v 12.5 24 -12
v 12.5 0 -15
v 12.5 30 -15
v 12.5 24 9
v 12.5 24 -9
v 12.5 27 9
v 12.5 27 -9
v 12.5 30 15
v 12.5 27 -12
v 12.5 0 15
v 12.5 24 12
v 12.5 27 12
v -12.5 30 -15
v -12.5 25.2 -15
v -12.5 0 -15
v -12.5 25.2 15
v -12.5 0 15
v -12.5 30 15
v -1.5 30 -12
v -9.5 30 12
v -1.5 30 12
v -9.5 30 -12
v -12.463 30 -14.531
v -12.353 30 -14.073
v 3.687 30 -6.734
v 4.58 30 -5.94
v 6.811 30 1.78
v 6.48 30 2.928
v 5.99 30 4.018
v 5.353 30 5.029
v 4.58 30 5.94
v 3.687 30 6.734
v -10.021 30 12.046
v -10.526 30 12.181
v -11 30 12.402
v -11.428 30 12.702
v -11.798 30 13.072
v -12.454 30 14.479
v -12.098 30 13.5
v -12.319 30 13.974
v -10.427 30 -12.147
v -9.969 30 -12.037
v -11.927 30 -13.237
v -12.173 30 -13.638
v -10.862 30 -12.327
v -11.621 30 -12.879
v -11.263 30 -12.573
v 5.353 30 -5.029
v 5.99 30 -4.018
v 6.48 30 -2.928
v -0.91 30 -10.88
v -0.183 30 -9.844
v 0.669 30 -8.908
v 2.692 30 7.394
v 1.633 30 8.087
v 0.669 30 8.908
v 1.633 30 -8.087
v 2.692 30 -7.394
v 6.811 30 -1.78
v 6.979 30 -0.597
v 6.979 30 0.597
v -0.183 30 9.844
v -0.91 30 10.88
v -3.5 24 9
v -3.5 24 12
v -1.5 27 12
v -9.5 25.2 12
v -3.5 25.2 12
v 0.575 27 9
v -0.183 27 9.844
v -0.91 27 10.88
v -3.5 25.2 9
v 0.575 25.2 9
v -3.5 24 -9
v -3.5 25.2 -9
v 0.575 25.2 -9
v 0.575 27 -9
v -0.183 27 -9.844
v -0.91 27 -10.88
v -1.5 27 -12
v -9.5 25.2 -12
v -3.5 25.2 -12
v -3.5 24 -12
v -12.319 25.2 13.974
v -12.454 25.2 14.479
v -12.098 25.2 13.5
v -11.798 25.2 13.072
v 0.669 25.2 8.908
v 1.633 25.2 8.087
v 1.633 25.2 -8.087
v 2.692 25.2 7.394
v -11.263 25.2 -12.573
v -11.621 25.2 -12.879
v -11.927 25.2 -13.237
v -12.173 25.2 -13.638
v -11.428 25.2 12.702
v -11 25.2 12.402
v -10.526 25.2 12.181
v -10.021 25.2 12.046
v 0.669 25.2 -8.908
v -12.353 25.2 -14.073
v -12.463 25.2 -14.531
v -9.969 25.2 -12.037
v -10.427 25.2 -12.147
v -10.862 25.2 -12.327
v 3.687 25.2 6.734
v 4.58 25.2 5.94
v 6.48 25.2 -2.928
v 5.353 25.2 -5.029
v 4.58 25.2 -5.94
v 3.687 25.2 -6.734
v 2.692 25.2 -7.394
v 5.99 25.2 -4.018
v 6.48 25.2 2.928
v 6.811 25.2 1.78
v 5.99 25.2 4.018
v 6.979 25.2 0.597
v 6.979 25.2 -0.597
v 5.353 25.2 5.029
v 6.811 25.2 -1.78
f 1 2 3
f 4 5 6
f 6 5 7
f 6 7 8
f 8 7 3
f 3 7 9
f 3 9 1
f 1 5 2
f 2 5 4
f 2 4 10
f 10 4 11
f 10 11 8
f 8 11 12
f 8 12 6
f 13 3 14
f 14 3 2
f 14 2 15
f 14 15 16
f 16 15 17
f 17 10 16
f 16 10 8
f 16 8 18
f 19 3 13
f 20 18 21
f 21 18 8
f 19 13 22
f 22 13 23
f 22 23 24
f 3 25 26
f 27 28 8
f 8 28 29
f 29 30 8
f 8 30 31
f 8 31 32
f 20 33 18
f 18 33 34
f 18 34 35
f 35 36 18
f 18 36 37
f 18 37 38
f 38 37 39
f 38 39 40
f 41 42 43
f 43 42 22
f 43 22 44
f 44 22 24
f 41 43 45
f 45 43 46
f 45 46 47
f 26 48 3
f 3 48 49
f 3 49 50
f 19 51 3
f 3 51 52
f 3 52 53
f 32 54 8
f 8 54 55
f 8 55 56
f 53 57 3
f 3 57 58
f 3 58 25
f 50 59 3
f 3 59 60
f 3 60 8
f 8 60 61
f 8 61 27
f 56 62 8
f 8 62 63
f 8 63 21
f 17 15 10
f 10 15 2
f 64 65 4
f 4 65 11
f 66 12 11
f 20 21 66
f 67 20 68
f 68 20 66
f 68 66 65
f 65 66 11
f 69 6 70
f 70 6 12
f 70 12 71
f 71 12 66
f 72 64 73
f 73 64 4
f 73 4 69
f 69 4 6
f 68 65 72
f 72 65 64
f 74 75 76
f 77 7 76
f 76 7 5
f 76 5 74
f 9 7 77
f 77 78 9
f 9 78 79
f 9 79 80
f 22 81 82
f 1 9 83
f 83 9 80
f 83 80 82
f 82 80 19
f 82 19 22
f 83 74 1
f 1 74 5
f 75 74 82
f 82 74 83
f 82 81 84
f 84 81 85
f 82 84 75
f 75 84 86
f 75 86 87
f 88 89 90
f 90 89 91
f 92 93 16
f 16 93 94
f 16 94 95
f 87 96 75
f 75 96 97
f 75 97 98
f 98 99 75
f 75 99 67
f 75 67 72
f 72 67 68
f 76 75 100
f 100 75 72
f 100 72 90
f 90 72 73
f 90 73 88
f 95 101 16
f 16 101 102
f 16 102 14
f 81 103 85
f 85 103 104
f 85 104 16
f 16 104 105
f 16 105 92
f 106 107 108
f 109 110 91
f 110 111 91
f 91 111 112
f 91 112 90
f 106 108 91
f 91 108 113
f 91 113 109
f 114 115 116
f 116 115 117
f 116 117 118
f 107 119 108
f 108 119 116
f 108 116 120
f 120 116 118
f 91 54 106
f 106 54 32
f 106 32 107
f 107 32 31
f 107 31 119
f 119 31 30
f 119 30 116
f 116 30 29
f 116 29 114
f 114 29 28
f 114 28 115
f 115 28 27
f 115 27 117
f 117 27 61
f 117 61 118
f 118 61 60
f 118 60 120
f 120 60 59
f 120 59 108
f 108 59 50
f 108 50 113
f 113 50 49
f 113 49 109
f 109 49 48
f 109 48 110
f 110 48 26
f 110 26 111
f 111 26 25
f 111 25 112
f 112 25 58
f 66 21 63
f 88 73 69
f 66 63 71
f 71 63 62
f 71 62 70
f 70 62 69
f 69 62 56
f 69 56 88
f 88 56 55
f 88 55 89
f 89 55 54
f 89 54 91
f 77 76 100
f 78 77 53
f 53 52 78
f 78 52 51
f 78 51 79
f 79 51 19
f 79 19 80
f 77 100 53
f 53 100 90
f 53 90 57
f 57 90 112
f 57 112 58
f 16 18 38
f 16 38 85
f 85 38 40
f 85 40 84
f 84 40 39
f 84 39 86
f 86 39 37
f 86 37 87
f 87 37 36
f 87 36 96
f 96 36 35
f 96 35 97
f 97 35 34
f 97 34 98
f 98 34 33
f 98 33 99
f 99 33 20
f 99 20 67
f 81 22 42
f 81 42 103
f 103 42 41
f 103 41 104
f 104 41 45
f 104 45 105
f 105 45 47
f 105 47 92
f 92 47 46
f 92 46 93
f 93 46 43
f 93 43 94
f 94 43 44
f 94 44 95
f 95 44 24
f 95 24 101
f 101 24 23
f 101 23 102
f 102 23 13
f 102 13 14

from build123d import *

# Parameters (mm, degrees)
SKETCH1_W           = 25
SKETCH1_H           = 30
BOSS_EXTRUDE1_DEPTH = 30
SKETCH3_W           = 3
SKETCH3_H           = 3
CUT_EXTRUDE1_DEPTH  = 16
CUT_EXTRUDE2_DEPTH  = 4.8
FILLET1_R           = 10
FILLET2_R           = 3


# Some blends are built 0.0001 mm under size
with BuildPart() as part:
    # Sketch1 → Boss-Extrude1 (new body)
    with BuildSketch(Plane(origin=(0, 0, 0), x_dir=(1, 0, 0), z_dir=(0, 1, 0))):
        Rectangle(SKETCH1_W, SKETCH1_H)
    extrude(amount=BOSS_EXTRUDE1_DEPTH)

    # Sketch3 → Cut-Extrude1 (cut)
    with BuildSketch(Plane(origin=(12.5, 0, 0), x_dir=(0, 0, -1), z_dir=(1, 0, 0))):
        with Locations((10.5, 25.5)):
            Rectangle(SKETCH3_W, SKETCH3_H)
        with Locations((-10.5, 25.5)):
            Rectangle(SKETCH3_W, SKETCH3_H)
    extrude(amount=-CUT_EXTRUDE1_DEPTH, mode=Mode.SUBTRACT)

    # Sketch5 → Cut-Extrude2 (cut)
    with BuildSketch(Plane(origin=(0, 30, 0), x_dir=(1, 0, 0), z_dir=(0, 1, 0))):
        with BuildLine():
            Line((-12.5, -12), (-1.5, -12))
            Line((-1.5, -12), (-1.5, -8.5))
            ThreePointArc((-1.5, -8.5), (7, 0), (-1.5, 8.5))
            Line((-1.5, 8.5), (-1.5, 12))
            Line((-1.5, 12), (-12.5, 12))
            Line((-12.5, 12), (-12.5, -12))
        make_face()
    extrude(amount=-CUT_EXTRUDE2_DEPTH, mode=Mode.SUBTRACT)

    # Fillet1
    # the kernel refuses this fillet: 10 mm, written as the material it takes off along each edge
    with BuildSketch(Plane(origin=(-1.5, 40.838231957, 8.5), x_dir=(0, 0, 1), z_dir=(0, -1, 0))) as fillet1_piece_1:
        with BuildLine():
            CenterArc((7.59375, -9.123662145), FILLET1_R, 114.165579325, 36.285209338)
            Line((-1.105574324, -4.191952877), (-1.279560811, -4.093318692))
            ThreePointArc((-1.279560811, -4.093318692), (-0.474426959, -2.116642947), (-0.2, 0))
            Line((-0.2, 0), (0, 0.2))
            ThreePointArc((0, 0.2), (1.75, 0.2), (3.418125, 0.182473243))
            Line((3.418125, 0.182473243), (3.5, 0))
        make_face()
    extrude(amount=15.638231957, mode=Mode.SUBTRACT)
    with BuildSketch(Plane(origin=(-1.5, 40.838231957, -8.5), x_dir=(0.9669365109541641, 0, 0.2550172225238677), z_dir=(0, -1, 0))) as fillet1_piece_2:
        with BuildLine():
            CenterArc((6.885465008, -9.66936511), FILLET1_R, 104.774605668, 36.285209338)
            Line((-0.892560279, -3.384277788), (-1.048120785, -3.258576042))
            ThreePointArc((-1.048120785, -3.258576042), (-0.639667442, -1.64113545), (-0.193387302, 0.051003445))
            Line((-0.193387302, 0.051003445), (0.051003445, 0.193387302))
            ThreePointArc((0.051003445, 0.193387302), (2.167646391, -0.081039657), (4.284289338, 0.193387302))
            Line((4.284289338, 0.193387302), (4.335292783, 0))
        make_face()
    extrude(amount=15.638231957, mode=Mode.SUBTRACT)

    # Fillet2
    fillet2_edges = [part.edges().sort_by_distance(p)[0] for p in [
        (-12.5, 27.6, 12),
        (-12.5, 27.6, -12),
    ]]
    fillet(fillet2_edges, radius=FILLET2_R - 0.0001)  # a hair under: the kernel refuses the full size


solid = part.part
